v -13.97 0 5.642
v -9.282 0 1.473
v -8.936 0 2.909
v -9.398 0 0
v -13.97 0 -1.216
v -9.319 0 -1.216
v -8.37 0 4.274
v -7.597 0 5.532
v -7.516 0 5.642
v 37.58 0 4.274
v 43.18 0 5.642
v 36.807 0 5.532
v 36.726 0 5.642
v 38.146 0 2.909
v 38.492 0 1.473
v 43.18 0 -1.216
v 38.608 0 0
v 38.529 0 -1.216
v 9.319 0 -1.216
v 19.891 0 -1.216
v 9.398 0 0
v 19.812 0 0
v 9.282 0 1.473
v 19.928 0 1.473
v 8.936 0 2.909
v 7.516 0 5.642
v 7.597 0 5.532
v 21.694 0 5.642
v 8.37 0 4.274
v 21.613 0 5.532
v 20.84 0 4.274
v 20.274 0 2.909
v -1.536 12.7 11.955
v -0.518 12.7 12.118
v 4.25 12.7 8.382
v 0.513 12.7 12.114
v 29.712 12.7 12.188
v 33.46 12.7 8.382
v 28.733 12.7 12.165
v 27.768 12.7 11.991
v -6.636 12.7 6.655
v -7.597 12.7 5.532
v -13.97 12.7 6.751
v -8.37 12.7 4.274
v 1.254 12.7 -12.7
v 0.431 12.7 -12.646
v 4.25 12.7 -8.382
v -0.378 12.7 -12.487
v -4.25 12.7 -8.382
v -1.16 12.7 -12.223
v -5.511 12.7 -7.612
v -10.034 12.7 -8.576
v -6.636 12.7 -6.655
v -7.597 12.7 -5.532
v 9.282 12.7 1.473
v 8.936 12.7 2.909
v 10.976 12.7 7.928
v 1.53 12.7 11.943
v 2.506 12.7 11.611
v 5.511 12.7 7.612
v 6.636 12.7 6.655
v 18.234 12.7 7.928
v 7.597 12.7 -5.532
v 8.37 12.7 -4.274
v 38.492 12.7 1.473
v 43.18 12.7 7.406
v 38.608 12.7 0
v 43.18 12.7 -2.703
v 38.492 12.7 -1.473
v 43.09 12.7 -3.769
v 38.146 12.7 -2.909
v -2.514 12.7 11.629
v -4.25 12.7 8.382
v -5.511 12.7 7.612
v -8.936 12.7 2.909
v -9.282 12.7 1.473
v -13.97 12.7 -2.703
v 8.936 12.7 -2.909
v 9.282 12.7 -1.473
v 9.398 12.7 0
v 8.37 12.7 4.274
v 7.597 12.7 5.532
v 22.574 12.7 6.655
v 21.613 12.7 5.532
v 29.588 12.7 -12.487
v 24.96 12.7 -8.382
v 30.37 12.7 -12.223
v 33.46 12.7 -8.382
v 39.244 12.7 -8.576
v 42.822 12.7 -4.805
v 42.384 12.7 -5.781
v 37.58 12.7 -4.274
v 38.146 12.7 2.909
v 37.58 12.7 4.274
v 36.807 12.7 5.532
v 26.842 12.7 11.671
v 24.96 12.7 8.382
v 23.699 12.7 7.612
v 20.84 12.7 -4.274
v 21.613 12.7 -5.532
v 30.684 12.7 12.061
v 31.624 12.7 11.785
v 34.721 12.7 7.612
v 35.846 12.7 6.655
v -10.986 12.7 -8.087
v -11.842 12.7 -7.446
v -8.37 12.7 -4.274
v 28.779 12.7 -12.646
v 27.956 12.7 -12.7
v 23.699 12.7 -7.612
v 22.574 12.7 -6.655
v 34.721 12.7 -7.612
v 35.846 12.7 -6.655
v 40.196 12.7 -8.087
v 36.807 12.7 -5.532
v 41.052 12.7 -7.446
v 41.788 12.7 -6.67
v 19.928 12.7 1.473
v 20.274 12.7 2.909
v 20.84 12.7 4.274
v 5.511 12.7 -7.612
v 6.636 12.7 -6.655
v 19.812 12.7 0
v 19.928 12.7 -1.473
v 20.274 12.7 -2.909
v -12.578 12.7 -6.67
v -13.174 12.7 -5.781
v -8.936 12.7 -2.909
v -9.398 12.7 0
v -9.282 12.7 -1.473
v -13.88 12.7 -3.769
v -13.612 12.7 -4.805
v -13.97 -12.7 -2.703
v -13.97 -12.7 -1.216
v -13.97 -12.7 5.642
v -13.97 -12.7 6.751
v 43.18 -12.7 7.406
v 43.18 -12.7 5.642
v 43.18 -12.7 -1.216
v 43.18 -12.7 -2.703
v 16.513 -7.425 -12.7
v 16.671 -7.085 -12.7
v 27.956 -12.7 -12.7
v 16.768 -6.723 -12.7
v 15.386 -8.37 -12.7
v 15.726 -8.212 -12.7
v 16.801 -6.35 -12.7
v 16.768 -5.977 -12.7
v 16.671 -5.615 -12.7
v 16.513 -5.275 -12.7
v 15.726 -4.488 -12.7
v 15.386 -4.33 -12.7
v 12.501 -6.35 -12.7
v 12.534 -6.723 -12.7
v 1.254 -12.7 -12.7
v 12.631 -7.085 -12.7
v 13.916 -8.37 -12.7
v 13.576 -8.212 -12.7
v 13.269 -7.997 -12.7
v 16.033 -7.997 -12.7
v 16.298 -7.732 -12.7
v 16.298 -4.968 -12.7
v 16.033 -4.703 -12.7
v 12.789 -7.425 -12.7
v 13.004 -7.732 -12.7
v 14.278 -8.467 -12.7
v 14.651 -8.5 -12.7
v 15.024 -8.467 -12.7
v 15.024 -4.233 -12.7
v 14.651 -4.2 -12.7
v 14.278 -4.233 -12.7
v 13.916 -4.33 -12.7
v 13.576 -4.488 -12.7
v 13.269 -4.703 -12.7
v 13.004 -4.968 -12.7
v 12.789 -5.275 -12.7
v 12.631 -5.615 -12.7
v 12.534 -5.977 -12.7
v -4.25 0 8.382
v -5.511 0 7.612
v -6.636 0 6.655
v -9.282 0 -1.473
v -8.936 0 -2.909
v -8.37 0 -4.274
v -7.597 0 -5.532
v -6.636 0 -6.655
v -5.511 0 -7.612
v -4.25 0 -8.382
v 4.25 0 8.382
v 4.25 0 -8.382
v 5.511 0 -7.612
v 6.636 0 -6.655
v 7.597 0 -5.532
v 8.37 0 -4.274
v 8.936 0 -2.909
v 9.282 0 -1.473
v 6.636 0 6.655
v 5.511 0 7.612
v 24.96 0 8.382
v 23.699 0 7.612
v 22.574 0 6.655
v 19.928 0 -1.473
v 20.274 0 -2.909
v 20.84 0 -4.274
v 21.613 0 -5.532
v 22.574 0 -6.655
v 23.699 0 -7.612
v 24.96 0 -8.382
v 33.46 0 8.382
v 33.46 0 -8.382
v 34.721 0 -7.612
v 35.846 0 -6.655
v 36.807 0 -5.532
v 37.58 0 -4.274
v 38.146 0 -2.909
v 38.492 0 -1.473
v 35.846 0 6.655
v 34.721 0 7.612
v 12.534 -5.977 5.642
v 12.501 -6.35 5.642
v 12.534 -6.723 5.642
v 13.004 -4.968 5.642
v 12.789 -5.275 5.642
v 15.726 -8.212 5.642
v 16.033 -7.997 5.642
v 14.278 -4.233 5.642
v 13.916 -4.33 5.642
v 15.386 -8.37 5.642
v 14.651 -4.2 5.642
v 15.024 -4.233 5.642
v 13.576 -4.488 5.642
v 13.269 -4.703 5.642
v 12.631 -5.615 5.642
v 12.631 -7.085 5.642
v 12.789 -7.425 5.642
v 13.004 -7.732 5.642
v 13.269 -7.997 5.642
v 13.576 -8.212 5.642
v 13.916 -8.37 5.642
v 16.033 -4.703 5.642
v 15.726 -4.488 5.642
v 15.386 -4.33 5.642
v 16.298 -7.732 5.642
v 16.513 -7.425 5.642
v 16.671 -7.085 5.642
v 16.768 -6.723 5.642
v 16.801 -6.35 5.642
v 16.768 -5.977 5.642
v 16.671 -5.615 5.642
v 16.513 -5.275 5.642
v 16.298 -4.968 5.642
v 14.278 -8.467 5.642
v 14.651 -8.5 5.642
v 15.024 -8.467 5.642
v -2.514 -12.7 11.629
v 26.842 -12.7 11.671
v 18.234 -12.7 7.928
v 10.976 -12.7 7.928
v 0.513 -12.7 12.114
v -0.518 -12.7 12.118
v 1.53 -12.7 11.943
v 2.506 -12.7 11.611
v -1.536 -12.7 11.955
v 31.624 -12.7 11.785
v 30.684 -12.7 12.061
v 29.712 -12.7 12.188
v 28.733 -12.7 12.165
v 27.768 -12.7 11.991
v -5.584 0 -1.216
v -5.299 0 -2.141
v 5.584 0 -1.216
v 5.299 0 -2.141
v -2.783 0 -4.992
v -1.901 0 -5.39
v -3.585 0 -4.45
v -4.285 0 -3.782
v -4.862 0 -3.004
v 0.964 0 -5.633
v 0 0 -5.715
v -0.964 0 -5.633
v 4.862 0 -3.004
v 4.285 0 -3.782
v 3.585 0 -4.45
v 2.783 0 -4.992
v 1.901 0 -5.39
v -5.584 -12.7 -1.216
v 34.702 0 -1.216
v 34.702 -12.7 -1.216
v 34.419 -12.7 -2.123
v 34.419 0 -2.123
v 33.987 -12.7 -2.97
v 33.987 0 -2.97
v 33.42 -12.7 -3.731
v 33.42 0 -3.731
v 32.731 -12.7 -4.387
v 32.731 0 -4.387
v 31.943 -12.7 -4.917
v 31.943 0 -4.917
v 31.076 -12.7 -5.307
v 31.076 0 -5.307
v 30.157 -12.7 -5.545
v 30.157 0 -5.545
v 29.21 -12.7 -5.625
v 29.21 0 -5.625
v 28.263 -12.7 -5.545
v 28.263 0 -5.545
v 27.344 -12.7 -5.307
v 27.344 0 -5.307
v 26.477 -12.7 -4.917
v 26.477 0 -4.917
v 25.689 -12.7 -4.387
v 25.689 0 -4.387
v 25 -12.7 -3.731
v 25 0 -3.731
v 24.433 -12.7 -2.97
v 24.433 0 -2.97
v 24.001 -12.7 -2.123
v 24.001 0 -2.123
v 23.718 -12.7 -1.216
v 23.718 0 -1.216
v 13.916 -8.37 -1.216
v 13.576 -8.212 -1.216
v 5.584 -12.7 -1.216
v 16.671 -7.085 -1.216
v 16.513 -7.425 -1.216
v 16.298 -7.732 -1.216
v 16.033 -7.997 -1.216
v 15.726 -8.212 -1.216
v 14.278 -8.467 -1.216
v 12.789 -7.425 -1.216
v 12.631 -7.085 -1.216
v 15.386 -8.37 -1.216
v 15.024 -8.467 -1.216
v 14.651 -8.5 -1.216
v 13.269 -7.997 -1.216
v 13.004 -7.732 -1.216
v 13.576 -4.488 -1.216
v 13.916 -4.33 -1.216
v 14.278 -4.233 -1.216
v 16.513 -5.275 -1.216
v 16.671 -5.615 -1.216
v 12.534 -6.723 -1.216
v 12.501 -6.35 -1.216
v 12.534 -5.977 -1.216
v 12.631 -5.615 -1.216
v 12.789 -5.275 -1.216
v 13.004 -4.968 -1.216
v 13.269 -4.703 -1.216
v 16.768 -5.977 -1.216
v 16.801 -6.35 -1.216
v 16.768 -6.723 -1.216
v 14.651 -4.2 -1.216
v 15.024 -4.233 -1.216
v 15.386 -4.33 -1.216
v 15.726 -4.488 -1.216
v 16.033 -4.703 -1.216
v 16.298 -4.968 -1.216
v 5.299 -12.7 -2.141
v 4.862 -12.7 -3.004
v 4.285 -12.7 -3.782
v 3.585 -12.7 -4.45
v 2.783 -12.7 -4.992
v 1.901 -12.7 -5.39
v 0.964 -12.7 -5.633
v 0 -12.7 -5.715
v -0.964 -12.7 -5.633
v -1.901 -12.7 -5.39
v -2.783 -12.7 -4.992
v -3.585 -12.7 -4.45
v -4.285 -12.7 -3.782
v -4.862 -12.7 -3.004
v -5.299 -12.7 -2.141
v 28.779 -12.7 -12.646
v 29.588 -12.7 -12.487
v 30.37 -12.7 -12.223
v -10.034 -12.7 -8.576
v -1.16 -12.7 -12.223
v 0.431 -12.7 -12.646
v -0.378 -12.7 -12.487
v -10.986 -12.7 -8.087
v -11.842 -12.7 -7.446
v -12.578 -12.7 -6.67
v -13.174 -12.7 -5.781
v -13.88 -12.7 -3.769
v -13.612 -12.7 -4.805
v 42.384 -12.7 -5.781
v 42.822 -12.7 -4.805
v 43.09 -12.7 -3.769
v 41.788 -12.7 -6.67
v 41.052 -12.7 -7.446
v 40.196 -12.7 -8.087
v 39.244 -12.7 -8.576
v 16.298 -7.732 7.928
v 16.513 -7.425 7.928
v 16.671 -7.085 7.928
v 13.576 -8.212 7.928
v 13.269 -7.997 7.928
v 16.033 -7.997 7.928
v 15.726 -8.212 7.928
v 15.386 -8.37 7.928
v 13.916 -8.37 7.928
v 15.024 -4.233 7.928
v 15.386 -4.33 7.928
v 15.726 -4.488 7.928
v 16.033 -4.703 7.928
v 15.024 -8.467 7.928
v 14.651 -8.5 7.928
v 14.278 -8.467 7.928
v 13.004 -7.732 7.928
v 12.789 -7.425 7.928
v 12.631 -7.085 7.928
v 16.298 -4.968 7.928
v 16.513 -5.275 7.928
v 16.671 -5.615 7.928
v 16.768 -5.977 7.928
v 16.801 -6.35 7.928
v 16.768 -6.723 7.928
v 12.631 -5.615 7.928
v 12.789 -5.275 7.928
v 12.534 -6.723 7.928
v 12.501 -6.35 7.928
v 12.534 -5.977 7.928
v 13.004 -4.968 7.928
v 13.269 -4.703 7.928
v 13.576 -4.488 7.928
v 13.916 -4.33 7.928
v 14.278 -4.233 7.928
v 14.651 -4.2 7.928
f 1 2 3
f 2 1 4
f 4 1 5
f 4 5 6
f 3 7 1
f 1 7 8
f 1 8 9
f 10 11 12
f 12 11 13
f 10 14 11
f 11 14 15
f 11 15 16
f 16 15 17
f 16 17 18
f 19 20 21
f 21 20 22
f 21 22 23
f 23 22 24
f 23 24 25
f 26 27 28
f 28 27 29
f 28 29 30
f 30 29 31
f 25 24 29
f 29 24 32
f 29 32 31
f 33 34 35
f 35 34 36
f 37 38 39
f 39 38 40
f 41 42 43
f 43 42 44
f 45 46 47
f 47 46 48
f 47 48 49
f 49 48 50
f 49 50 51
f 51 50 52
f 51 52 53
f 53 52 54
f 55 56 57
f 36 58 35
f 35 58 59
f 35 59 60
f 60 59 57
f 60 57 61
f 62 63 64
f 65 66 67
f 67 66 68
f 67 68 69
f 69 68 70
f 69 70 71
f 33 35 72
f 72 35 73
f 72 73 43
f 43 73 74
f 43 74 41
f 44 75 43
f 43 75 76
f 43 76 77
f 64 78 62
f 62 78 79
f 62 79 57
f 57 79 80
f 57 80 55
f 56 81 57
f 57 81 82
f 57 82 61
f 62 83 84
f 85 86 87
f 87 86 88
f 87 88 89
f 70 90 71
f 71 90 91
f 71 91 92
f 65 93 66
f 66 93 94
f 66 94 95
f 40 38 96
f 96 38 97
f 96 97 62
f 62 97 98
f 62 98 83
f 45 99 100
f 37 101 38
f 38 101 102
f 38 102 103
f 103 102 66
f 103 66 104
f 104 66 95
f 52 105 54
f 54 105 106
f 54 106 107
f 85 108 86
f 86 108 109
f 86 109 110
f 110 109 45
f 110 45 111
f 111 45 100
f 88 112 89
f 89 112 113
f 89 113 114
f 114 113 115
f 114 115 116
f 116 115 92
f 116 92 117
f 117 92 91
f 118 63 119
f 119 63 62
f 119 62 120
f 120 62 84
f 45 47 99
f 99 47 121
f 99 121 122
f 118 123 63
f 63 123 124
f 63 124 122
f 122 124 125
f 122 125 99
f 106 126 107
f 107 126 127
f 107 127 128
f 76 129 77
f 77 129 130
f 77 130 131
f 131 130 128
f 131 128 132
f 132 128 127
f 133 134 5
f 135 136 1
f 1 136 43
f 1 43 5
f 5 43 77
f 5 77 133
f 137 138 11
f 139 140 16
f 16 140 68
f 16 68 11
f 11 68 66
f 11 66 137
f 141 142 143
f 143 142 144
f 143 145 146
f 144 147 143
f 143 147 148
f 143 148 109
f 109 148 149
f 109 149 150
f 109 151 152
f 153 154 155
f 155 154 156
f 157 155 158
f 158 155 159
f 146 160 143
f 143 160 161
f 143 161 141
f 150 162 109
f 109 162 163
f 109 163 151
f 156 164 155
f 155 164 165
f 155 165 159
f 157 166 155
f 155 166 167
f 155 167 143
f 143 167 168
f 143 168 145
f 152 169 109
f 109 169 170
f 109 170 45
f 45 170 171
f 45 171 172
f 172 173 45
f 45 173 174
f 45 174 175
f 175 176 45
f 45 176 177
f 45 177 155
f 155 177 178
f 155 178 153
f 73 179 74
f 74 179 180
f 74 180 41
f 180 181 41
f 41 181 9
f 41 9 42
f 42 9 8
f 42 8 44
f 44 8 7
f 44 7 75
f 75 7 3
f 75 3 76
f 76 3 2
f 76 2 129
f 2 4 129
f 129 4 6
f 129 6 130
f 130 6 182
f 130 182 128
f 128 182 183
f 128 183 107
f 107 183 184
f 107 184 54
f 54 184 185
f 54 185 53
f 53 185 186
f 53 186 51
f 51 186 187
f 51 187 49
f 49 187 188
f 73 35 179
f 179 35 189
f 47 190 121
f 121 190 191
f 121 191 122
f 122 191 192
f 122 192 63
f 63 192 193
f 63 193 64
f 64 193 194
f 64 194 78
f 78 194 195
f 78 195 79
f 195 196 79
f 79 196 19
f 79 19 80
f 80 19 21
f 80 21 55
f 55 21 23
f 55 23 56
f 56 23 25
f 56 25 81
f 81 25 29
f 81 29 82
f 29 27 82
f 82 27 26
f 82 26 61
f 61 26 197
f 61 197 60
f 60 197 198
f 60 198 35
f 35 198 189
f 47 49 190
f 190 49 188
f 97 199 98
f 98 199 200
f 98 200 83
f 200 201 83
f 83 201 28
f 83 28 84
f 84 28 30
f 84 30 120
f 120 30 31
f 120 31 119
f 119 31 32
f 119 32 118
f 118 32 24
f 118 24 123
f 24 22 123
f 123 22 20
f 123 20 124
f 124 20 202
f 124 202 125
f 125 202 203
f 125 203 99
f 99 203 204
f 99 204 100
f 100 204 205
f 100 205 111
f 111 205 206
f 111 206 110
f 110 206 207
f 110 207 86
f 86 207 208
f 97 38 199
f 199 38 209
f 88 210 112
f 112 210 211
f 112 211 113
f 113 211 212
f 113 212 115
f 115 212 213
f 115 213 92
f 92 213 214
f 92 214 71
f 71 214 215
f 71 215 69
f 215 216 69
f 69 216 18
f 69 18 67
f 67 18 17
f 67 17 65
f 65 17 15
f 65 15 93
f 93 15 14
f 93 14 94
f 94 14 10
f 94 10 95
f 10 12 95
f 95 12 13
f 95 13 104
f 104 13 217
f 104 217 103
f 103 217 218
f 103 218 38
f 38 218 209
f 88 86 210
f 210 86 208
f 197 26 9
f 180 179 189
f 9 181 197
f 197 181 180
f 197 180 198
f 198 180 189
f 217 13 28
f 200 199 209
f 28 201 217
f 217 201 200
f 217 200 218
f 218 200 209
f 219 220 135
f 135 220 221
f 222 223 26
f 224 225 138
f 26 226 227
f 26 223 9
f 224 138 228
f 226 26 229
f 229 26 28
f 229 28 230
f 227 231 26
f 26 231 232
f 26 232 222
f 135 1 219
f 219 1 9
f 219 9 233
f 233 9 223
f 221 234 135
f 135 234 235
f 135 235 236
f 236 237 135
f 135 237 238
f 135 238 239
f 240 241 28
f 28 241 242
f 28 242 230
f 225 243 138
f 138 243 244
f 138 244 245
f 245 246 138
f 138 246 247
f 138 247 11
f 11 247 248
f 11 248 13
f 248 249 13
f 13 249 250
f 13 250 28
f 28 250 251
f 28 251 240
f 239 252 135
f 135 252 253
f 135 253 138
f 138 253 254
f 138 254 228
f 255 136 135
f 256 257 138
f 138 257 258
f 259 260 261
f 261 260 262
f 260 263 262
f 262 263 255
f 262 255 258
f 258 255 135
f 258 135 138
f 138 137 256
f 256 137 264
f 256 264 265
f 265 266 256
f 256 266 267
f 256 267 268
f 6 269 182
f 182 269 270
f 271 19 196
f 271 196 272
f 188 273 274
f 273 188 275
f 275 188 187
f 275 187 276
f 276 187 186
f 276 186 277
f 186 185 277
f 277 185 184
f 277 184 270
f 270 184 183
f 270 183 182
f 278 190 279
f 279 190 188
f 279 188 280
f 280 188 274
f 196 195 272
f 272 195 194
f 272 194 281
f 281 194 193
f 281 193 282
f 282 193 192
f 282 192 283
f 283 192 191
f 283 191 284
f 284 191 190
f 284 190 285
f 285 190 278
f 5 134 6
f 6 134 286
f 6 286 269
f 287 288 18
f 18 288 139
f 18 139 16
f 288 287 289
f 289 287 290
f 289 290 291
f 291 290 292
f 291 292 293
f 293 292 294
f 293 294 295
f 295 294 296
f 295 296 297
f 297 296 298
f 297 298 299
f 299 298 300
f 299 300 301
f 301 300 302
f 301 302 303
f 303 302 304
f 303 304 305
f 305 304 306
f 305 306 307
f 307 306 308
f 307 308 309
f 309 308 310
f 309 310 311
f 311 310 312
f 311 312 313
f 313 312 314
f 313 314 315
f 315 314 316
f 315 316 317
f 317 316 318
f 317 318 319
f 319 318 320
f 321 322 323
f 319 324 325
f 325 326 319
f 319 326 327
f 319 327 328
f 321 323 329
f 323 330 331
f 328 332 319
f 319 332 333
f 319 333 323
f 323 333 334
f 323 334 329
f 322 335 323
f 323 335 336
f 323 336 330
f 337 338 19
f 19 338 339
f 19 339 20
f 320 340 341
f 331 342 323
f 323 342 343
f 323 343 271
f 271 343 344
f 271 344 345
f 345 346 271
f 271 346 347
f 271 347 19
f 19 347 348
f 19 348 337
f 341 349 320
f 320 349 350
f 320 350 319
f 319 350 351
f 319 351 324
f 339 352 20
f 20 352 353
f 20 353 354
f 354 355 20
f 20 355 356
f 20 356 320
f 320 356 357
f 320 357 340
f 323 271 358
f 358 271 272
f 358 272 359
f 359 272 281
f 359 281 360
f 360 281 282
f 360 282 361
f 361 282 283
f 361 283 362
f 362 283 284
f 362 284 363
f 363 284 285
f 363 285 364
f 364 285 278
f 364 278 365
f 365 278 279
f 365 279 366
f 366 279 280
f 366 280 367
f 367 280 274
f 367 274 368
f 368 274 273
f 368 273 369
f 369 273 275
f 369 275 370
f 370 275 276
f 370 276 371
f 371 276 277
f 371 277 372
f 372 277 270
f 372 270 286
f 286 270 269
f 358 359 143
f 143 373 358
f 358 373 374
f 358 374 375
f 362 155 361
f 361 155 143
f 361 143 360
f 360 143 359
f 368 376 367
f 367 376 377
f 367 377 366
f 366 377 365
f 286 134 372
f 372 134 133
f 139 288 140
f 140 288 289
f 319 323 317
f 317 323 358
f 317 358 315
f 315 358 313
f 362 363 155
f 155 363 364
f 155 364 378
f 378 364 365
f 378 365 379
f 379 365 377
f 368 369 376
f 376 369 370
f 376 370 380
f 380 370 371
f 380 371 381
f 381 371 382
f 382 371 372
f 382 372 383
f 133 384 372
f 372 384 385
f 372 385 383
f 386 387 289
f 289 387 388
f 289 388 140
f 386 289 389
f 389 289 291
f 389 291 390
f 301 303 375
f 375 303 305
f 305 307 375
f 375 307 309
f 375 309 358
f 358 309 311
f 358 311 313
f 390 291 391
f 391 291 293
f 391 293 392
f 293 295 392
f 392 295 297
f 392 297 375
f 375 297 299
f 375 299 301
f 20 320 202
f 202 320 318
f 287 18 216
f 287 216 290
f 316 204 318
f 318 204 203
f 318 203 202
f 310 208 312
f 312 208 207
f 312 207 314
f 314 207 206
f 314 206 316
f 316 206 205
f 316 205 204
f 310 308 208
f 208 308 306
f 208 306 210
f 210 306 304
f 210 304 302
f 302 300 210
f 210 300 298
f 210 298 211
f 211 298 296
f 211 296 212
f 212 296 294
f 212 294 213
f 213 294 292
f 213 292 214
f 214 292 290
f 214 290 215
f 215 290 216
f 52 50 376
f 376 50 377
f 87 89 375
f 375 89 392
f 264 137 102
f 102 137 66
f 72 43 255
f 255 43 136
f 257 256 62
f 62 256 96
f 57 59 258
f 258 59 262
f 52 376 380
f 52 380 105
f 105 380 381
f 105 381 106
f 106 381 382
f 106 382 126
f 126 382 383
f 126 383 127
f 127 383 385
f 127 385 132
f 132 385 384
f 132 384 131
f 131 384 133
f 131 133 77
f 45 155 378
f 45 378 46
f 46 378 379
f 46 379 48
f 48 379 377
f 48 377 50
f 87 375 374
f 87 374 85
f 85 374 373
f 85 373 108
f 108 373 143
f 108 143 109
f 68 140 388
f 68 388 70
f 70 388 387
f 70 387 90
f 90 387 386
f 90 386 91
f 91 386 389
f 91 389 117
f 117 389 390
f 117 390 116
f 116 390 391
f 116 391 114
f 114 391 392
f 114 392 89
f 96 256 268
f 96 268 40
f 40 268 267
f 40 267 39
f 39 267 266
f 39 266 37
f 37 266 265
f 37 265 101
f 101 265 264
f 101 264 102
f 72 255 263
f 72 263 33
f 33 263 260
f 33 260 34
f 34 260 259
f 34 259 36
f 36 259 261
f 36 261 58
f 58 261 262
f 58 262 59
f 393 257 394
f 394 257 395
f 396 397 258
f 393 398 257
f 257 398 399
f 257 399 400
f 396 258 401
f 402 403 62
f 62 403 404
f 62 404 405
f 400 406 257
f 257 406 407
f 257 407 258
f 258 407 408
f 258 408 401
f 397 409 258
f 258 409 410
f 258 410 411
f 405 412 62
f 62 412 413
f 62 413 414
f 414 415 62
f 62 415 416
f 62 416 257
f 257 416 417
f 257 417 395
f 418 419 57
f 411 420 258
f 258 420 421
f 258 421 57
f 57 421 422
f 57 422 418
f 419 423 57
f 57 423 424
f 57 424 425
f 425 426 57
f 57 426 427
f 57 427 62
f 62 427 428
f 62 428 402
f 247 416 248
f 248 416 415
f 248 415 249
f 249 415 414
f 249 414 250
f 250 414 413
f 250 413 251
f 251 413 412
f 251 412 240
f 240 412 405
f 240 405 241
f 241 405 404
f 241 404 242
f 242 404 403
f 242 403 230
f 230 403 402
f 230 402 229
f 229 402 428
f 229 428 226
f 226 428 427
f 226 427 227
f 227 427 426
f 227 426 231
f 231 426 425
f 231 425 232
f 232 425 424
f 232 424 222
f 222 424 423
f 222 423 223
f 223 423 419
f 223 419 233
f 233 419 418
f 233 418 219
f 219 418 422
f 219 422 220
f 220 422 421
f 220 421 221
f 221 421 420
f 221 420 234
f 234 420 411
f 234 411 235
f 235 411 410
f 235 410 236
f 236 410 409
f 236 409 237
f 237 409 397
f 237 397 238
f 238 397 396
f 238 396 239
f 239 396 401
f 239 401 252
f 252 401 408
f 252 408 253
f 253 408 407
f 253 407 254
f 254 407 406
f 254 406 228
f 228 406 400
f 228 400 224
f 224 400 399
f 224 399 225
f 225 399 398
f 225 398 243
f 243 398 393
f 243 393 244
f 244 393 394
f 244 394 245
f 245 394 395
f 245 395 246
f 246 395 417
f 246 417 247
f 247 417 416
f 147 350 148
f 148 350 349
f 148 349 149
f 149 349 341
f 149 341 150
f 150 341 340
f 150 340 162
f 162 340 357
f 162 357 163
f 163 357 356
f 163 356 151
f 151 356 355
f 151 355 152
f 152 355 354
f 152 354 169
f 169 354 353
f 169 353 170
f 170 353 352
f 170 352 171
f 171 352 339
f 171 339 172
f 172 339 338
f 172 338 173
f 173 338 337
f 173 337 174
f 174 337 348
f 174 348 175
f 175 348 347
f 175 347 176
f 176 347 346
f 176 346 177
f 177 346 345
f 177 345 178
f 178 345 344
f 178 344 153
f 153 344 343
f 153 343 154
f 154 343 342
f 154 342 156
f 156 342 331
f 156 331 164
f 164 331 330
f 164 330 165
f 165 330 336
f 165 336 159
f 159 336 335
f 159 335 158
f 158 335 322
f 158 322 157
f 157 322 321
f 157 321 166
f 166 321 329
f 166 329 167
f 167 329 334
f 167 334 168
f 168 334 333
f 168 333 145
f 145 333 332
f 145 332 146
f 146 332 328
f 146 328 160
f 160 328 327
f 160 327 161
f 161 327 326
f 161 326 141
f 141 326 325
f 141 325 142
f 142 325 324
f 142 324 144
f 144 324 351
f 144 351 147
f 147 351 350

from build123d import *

# Parameters (mm, degrees)
SKETCH1_W               = 57.15
SKETCH1_H               = 25.4
BOSS_EXTRUDE1_DEPTH     = 12.7
BOSS_EXTRUDE3_DEPTH     = 12.7
CUT_EXTRUDE1_DEPTH      = 26.4
CUT_EXTRUDE2_DEPTH      = 26.4
FILLET1_R               = 6.35
SKETCH7_W               = 12.7
SKETCH7_H               = 2.286
BOSS_EXTRUDE4_DEPTH     = 25.4
SKETCH6_R               = 2.15
CUT_EXTRUDE3_DEPTH      = 14.413396589
CUT_EXTRUDE3_DEPTH_BACK = 12.4837718


with BuildPart() as part:
    # Sketch1 → Boss-Extrude1 (new body)
    with BuildSketch(Plane(origin=(0, 0, 0), x_dir=(1, 0, 0), z_dir=(0, 1, 0))):
        with Locations((14.605, 0)):
            Rectangle(SKETCH1_W, SKETCH1_H)
        with BuildLine():
            Line((-4.250232935, 8.382), (4.250232935, 8.382))
            ThreePointArc((4.250232935, 8.382), (9.398, 0), (4.250232935, -8.382))
            Line((4.250232935, -8.382), (-4.250232935, -8.382))
            ThreePointArc((-4.250232935, -8.382), (-9.398, 0), (-4.250232935, 8.382))
        make_face(mode=Mode.SUBTRACT)
        with BuildLine():
            Line((24.959767065, 8.382), (33.460232935, 8.382))
            ThreePointArc((33.460232935, 8.382), (38.608, 0), (33.460232935, -8.382))
            Line((33.460232935, -8.382), (24.959767065, -8.382))
            ThreePointArc((24.959767065, -8.382), (19.812, 0), (24.959767065, 8.382))
        make_face(mode=Mode.SUBTRACT)
    extrude(amount=BOSS_EXTRUDE1_DEPTH)

    # Sketch3 → Boss-Extrude3 (add)
    with BuildSketch(Plane.XZ):
        Polygon((-13.97, 12.7), (43.18, 12.7), (43.18, 5.6417718), (32.093467094, 5.6417718), (26.326532906, 5.6417718), (2.727750443, 5.6417718), (-2.727750443, 5.6417718), (-13.97, 5.6417718), align=None)
        with BuildLine():
            Line((43.18, -1.2162282), (43.18, -12.7))
            Line((43.18, -12.7), (-13.97, -12.7))
            Line((-13.97, -12.7), (-13.97, -1.2162282))
            Line((-13.97, -1.2162282), (-5.584085777, -1.2162282))
            ThreePointArc((-5.584085777, -1.2162282), (0, -5.715), (5.584085777, -1.2162282))
            Line((5.584085777, -1.2162282), (23.717811699, -1.2162282))
            ThreePointArc((23.717811699, -1.2162282), (29.21, -5.625241627), (34.702188301, -1.2162282))
            Line((34.702188301, -1.2162282), (43.18, -1.2162282))
        make_face()
    extrude(amount=BOSS_EXTRUDE3_DEPTH)

    # Sketch4 → Cut-Extrude1 (cut, through all)
    with BuildSketch(Plane.XZ.offset(12.7)):
        Polygon((-13.97, -6.9581141), (-13.97, -12.7), (0, -12.7), align=None)
        Polygon((29.21, -12.7), (43.18, -12.7), (43.18, -6.9581141), align=None)
        Polygon((43.18, 12.7), (43.18, 7.40632885), (29.21, 12.7), align=None)
        Polygon((0, 12.7), (-13.97, 6.751), (-13.97, 12.7), align=None)
    extrude(amount=-CUT_EXTRUDE1_DEPTH, mode=Mode.SUBTRACT)

    # Sketch5 → Cut-Extrude2 (cut, through all)
    with BuildSketch(Plane.XZ.offset(12.7)):
        Polygon((0, 12.7), (14.605, 6.35), (29.21, 12.7), align=None)
    extrude(amount=-CUT_EXTRUDE2_DEPTH, mode=Mode.SUBTRACT)

    # Fillet1
    fillet1_edges = [part.edges().sort_by_distance(p)[0] for p in [
        (0, 0, 12.7),
        (29.21, 0, 12.7),
        (29.21, 0, -12.7),
        (43.18, 0, -6.9581141),
        (-13.97, 0, -6.9581141),
        (0, 0, -12.7),
    ]]
    fillet(fillet1_edges, radius=FILLET1_R)

    # Sketch7 → Boss-Extrude4 (add)
    with BuildSketch(Plane.XZ.offset(12.7)):
        with Locations((14.605, 6.7847718)):
            Rectangle(SKETCH7_W, SKETCH7_H)
    extrude(amount=-BOSS_EXTRUDE4_DEPTH)

    # Sketch6 → Cut-Extrude3 (cut, two sides)
    with BuildSketch(Plane.XY.offset(-1.2162282)) as cut_extrude3_sk:
        with Locations((14.650948738, -6.35)):
            Circle(SKETCH6_R)
    extrude(amount=CUT_EXTRUDE3_DEPTH, mode=Mode.SUBTRACT)
    extrude(cut_extrude3_sk.sketch, amount=-CUT_EXTRUDE3_DEPTH_BACK, mode=Mode.SUBTRACT)


solid = part.part
